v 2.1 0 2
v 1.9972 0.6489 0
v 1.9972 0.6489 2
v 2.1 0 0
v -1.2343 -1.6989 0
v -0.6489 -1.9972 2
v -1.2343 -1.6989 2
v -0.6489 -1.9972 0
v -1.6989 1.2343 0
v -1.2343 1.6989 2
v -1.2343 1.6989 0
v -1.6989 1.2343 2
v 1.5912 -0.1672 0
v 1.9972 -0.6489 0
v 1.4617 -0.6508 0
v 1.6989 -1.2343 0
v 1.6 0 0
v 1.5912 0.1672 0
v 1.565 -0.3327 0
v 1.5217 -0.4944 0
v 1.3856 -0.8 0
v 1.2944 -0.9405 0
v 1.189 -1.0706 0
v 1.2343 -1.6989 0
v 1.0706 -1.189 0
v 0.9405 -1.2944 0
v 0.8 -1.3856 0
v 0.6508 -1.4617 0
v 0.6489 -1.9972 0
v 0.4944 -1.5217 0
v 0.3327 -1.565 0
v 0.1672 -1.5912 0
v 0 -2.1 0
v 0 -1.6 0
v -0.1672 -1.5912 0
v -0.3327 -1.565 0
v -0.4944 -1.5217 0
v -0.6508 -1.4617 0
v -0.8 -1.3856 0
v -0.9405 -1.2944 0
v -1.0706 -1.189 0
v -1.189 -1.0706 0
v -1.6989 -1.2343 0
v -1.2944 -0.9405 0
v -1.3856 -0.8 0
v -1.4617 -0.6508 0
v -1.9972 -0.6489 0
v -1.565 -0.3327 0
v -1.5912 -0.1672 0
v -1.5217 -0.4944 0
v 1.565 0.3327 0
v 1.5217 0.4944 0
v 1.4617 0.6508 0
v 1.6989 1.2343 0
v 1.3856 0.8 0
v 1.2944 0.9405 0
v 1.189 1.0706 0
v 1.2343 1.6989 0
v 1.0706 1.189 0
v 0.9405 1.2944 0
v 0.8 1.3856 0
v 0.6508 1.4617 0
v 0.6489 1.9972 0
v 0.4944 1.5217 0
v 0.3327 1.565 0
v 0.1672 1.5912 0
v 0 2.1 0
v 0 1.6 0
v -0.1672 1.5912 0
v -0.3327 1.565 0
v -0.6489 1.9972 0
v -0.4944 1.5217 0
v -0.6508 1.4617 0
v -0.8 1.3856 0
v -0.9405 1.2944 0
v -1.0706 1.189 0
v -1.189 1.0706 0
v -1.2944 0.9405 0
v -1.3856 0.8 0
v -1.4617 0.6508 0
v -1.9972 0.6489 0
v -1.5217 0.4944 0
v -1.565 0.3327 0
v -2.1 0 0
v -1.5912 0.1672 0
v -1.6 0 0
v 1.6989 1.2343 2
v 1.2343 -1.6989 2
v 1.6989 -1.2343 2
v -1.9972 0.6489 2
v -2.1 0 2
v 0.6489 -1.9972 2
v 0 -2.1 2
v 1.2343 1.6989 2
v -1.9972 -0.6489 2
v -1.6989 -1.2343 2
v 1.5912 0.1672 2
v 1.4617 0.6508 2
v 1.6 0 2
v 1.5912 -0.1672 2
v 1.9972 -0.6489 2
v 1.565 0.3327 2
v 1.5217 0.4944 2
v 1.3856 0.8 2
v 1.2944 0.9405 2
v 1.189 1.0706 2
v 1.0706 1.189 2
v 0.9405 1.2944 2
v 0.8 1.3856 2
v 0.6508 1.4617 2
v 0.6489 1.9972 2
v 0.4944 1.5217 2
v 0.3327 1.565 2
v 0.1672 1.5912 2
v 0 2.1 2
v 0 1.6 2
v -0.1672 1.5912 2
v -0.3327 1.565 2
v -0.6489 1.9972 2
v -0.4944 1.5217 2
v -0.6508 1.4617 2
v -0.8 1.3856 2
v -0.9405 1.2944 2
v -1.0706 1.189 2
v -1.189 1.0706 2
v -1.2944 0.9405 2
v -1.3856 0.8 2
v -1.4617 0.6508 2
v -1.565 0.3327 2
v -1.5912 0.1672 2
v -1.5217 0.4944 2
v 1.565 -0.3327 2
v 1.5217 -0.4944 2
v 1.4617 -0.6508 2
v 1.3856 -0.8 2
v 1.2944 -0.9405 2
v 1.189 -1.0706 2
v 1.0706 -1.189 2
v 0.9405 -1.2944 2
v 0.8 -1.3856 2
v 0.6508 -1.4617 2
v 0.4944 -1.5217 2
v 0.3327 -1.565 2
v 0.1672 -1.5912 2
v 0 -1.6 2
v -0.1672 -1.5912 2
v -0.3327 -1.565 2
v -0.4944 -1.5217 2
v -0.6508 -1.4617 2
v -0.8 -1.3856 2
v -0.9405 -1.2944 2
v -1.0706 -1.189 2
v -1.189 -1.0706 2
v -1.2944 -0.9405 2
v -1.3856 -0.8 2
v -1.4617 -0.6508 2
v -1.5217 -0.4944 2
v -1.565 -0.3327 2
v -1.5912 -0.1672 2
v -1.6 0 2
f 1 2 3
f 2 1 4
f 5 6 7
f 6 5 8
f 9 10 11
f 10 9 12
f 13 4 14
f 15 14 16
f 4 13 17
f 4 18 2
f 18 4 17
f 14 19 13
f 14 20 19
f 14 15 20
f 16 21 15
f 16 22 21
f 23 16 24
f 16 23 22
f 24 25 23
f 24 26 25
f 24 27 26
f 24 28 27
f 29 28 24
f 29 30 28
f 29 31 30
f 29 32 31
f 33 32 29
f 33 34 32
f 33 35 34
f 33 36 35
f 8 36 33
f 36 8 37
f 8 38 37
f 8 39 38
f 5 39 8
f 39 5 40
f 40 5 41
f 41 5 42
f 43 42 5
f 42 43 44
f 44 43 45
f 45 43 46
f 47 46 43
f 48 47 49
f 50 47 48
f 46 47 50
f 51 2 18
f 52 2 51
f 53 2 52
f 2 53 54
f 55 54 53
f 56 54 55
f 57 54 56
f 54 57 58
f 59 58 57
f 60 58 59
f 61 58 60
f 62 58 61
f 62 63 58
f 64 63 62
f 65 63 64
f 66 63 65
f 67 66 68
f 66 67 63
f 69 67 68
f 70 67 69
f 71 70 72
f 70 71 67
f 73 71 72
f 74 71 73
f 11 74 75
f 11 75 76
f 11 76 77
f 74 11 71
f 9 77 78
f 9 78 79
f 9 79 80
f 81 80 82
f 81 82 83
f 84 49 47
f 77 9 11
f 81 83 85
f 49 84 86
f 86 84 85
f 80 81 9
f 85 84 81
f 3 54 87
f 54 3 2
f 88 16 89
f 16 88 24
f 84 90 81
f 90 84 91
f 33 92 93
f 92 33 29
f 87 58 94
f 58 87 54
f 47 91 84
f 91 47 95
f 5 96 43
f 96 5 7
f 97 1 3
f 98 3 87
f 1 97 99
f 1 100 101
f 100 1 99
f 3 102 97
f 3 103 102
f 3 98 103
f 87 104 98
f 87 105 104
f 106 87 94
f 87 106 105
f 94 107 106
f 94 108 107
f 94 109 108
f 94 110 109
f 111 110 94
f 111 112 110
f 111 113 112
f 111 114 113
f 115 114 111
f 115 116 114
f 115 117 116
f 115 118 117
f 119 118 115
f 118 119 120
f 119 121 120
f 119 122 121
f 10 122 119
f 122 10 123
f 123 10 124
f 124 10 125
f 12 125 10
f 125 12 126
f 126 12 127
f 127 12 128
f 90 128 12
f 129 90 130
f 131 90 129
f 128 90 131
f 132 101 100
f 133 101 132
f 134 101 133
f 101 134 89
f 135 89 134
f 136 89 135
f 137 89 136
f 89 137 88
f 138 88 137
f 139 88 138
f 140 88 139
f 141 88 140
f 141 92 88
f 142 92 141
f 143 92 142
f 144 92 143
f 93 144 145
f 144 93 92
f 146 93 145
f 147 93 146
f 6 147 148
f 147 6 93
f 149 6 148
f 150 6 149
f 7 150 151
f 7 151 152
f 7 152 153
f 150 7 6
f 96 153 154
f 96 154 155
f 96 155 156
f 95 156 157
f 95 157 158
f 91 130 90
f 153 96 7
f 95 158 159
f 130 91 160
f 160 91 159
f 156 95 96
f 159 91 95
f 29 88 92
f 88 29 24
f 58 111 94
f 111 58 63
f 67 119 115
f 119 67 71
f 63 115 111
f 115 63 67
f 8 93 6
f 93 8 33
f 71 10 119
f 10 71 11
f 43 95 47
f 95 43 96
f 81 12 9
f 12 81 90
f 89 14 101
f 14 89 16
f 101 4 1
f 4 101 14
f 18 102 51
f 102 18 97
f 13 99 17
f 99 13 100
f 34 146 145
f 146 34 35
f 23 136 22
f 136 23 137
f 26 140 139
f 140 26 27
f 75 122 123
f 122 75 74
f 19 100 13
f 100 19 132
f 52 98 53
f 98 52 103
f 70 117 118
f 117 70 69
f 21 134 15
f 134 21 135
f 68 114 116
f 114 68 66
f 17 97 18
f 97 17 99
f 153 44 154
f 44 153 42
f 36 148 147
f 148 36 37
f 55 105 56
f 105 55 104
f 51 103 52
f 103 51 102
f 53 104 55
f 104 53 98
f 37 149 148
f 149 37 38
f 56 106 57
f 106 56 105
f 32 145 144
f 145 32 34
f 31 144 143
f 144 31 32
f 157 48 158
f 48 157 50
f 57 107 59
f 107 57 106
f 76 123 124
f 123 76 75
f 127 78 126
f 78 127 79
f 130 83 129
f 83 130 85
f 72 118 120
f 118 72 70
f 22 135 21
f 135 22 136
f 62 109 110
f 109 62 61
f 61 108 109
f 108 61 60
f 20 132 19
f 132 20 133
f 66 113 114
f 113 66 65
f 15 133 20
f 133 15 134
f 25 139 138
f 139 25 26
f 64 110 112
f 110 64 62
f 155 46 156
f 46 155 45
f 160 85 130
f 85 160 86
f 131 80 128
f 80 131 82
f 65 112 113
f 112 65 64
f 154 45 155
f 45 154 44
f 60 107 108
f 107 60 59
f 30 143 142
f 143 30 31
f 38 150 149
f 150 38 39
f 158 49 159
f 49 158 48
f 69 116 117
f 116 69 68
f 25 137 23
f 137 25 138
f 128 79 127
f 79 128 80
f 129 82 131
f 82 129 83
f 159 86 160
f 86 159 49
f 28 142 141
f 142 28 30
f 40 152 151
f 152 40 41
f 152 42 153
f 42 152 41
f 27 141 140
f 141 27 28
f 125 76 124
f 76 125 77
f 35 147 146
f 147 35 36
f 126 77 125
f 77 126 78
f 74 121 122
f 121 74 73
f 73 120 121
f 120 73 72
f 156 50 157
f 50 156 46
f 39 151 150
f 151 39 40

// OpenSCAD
module buje(){
h=2;
difference(){
cylinder(d=4.2,h=2,$fn=20);
translate([0,0,-1])cylinder(d=3.2,h=4,$fn=60);
}  
}
buje();
